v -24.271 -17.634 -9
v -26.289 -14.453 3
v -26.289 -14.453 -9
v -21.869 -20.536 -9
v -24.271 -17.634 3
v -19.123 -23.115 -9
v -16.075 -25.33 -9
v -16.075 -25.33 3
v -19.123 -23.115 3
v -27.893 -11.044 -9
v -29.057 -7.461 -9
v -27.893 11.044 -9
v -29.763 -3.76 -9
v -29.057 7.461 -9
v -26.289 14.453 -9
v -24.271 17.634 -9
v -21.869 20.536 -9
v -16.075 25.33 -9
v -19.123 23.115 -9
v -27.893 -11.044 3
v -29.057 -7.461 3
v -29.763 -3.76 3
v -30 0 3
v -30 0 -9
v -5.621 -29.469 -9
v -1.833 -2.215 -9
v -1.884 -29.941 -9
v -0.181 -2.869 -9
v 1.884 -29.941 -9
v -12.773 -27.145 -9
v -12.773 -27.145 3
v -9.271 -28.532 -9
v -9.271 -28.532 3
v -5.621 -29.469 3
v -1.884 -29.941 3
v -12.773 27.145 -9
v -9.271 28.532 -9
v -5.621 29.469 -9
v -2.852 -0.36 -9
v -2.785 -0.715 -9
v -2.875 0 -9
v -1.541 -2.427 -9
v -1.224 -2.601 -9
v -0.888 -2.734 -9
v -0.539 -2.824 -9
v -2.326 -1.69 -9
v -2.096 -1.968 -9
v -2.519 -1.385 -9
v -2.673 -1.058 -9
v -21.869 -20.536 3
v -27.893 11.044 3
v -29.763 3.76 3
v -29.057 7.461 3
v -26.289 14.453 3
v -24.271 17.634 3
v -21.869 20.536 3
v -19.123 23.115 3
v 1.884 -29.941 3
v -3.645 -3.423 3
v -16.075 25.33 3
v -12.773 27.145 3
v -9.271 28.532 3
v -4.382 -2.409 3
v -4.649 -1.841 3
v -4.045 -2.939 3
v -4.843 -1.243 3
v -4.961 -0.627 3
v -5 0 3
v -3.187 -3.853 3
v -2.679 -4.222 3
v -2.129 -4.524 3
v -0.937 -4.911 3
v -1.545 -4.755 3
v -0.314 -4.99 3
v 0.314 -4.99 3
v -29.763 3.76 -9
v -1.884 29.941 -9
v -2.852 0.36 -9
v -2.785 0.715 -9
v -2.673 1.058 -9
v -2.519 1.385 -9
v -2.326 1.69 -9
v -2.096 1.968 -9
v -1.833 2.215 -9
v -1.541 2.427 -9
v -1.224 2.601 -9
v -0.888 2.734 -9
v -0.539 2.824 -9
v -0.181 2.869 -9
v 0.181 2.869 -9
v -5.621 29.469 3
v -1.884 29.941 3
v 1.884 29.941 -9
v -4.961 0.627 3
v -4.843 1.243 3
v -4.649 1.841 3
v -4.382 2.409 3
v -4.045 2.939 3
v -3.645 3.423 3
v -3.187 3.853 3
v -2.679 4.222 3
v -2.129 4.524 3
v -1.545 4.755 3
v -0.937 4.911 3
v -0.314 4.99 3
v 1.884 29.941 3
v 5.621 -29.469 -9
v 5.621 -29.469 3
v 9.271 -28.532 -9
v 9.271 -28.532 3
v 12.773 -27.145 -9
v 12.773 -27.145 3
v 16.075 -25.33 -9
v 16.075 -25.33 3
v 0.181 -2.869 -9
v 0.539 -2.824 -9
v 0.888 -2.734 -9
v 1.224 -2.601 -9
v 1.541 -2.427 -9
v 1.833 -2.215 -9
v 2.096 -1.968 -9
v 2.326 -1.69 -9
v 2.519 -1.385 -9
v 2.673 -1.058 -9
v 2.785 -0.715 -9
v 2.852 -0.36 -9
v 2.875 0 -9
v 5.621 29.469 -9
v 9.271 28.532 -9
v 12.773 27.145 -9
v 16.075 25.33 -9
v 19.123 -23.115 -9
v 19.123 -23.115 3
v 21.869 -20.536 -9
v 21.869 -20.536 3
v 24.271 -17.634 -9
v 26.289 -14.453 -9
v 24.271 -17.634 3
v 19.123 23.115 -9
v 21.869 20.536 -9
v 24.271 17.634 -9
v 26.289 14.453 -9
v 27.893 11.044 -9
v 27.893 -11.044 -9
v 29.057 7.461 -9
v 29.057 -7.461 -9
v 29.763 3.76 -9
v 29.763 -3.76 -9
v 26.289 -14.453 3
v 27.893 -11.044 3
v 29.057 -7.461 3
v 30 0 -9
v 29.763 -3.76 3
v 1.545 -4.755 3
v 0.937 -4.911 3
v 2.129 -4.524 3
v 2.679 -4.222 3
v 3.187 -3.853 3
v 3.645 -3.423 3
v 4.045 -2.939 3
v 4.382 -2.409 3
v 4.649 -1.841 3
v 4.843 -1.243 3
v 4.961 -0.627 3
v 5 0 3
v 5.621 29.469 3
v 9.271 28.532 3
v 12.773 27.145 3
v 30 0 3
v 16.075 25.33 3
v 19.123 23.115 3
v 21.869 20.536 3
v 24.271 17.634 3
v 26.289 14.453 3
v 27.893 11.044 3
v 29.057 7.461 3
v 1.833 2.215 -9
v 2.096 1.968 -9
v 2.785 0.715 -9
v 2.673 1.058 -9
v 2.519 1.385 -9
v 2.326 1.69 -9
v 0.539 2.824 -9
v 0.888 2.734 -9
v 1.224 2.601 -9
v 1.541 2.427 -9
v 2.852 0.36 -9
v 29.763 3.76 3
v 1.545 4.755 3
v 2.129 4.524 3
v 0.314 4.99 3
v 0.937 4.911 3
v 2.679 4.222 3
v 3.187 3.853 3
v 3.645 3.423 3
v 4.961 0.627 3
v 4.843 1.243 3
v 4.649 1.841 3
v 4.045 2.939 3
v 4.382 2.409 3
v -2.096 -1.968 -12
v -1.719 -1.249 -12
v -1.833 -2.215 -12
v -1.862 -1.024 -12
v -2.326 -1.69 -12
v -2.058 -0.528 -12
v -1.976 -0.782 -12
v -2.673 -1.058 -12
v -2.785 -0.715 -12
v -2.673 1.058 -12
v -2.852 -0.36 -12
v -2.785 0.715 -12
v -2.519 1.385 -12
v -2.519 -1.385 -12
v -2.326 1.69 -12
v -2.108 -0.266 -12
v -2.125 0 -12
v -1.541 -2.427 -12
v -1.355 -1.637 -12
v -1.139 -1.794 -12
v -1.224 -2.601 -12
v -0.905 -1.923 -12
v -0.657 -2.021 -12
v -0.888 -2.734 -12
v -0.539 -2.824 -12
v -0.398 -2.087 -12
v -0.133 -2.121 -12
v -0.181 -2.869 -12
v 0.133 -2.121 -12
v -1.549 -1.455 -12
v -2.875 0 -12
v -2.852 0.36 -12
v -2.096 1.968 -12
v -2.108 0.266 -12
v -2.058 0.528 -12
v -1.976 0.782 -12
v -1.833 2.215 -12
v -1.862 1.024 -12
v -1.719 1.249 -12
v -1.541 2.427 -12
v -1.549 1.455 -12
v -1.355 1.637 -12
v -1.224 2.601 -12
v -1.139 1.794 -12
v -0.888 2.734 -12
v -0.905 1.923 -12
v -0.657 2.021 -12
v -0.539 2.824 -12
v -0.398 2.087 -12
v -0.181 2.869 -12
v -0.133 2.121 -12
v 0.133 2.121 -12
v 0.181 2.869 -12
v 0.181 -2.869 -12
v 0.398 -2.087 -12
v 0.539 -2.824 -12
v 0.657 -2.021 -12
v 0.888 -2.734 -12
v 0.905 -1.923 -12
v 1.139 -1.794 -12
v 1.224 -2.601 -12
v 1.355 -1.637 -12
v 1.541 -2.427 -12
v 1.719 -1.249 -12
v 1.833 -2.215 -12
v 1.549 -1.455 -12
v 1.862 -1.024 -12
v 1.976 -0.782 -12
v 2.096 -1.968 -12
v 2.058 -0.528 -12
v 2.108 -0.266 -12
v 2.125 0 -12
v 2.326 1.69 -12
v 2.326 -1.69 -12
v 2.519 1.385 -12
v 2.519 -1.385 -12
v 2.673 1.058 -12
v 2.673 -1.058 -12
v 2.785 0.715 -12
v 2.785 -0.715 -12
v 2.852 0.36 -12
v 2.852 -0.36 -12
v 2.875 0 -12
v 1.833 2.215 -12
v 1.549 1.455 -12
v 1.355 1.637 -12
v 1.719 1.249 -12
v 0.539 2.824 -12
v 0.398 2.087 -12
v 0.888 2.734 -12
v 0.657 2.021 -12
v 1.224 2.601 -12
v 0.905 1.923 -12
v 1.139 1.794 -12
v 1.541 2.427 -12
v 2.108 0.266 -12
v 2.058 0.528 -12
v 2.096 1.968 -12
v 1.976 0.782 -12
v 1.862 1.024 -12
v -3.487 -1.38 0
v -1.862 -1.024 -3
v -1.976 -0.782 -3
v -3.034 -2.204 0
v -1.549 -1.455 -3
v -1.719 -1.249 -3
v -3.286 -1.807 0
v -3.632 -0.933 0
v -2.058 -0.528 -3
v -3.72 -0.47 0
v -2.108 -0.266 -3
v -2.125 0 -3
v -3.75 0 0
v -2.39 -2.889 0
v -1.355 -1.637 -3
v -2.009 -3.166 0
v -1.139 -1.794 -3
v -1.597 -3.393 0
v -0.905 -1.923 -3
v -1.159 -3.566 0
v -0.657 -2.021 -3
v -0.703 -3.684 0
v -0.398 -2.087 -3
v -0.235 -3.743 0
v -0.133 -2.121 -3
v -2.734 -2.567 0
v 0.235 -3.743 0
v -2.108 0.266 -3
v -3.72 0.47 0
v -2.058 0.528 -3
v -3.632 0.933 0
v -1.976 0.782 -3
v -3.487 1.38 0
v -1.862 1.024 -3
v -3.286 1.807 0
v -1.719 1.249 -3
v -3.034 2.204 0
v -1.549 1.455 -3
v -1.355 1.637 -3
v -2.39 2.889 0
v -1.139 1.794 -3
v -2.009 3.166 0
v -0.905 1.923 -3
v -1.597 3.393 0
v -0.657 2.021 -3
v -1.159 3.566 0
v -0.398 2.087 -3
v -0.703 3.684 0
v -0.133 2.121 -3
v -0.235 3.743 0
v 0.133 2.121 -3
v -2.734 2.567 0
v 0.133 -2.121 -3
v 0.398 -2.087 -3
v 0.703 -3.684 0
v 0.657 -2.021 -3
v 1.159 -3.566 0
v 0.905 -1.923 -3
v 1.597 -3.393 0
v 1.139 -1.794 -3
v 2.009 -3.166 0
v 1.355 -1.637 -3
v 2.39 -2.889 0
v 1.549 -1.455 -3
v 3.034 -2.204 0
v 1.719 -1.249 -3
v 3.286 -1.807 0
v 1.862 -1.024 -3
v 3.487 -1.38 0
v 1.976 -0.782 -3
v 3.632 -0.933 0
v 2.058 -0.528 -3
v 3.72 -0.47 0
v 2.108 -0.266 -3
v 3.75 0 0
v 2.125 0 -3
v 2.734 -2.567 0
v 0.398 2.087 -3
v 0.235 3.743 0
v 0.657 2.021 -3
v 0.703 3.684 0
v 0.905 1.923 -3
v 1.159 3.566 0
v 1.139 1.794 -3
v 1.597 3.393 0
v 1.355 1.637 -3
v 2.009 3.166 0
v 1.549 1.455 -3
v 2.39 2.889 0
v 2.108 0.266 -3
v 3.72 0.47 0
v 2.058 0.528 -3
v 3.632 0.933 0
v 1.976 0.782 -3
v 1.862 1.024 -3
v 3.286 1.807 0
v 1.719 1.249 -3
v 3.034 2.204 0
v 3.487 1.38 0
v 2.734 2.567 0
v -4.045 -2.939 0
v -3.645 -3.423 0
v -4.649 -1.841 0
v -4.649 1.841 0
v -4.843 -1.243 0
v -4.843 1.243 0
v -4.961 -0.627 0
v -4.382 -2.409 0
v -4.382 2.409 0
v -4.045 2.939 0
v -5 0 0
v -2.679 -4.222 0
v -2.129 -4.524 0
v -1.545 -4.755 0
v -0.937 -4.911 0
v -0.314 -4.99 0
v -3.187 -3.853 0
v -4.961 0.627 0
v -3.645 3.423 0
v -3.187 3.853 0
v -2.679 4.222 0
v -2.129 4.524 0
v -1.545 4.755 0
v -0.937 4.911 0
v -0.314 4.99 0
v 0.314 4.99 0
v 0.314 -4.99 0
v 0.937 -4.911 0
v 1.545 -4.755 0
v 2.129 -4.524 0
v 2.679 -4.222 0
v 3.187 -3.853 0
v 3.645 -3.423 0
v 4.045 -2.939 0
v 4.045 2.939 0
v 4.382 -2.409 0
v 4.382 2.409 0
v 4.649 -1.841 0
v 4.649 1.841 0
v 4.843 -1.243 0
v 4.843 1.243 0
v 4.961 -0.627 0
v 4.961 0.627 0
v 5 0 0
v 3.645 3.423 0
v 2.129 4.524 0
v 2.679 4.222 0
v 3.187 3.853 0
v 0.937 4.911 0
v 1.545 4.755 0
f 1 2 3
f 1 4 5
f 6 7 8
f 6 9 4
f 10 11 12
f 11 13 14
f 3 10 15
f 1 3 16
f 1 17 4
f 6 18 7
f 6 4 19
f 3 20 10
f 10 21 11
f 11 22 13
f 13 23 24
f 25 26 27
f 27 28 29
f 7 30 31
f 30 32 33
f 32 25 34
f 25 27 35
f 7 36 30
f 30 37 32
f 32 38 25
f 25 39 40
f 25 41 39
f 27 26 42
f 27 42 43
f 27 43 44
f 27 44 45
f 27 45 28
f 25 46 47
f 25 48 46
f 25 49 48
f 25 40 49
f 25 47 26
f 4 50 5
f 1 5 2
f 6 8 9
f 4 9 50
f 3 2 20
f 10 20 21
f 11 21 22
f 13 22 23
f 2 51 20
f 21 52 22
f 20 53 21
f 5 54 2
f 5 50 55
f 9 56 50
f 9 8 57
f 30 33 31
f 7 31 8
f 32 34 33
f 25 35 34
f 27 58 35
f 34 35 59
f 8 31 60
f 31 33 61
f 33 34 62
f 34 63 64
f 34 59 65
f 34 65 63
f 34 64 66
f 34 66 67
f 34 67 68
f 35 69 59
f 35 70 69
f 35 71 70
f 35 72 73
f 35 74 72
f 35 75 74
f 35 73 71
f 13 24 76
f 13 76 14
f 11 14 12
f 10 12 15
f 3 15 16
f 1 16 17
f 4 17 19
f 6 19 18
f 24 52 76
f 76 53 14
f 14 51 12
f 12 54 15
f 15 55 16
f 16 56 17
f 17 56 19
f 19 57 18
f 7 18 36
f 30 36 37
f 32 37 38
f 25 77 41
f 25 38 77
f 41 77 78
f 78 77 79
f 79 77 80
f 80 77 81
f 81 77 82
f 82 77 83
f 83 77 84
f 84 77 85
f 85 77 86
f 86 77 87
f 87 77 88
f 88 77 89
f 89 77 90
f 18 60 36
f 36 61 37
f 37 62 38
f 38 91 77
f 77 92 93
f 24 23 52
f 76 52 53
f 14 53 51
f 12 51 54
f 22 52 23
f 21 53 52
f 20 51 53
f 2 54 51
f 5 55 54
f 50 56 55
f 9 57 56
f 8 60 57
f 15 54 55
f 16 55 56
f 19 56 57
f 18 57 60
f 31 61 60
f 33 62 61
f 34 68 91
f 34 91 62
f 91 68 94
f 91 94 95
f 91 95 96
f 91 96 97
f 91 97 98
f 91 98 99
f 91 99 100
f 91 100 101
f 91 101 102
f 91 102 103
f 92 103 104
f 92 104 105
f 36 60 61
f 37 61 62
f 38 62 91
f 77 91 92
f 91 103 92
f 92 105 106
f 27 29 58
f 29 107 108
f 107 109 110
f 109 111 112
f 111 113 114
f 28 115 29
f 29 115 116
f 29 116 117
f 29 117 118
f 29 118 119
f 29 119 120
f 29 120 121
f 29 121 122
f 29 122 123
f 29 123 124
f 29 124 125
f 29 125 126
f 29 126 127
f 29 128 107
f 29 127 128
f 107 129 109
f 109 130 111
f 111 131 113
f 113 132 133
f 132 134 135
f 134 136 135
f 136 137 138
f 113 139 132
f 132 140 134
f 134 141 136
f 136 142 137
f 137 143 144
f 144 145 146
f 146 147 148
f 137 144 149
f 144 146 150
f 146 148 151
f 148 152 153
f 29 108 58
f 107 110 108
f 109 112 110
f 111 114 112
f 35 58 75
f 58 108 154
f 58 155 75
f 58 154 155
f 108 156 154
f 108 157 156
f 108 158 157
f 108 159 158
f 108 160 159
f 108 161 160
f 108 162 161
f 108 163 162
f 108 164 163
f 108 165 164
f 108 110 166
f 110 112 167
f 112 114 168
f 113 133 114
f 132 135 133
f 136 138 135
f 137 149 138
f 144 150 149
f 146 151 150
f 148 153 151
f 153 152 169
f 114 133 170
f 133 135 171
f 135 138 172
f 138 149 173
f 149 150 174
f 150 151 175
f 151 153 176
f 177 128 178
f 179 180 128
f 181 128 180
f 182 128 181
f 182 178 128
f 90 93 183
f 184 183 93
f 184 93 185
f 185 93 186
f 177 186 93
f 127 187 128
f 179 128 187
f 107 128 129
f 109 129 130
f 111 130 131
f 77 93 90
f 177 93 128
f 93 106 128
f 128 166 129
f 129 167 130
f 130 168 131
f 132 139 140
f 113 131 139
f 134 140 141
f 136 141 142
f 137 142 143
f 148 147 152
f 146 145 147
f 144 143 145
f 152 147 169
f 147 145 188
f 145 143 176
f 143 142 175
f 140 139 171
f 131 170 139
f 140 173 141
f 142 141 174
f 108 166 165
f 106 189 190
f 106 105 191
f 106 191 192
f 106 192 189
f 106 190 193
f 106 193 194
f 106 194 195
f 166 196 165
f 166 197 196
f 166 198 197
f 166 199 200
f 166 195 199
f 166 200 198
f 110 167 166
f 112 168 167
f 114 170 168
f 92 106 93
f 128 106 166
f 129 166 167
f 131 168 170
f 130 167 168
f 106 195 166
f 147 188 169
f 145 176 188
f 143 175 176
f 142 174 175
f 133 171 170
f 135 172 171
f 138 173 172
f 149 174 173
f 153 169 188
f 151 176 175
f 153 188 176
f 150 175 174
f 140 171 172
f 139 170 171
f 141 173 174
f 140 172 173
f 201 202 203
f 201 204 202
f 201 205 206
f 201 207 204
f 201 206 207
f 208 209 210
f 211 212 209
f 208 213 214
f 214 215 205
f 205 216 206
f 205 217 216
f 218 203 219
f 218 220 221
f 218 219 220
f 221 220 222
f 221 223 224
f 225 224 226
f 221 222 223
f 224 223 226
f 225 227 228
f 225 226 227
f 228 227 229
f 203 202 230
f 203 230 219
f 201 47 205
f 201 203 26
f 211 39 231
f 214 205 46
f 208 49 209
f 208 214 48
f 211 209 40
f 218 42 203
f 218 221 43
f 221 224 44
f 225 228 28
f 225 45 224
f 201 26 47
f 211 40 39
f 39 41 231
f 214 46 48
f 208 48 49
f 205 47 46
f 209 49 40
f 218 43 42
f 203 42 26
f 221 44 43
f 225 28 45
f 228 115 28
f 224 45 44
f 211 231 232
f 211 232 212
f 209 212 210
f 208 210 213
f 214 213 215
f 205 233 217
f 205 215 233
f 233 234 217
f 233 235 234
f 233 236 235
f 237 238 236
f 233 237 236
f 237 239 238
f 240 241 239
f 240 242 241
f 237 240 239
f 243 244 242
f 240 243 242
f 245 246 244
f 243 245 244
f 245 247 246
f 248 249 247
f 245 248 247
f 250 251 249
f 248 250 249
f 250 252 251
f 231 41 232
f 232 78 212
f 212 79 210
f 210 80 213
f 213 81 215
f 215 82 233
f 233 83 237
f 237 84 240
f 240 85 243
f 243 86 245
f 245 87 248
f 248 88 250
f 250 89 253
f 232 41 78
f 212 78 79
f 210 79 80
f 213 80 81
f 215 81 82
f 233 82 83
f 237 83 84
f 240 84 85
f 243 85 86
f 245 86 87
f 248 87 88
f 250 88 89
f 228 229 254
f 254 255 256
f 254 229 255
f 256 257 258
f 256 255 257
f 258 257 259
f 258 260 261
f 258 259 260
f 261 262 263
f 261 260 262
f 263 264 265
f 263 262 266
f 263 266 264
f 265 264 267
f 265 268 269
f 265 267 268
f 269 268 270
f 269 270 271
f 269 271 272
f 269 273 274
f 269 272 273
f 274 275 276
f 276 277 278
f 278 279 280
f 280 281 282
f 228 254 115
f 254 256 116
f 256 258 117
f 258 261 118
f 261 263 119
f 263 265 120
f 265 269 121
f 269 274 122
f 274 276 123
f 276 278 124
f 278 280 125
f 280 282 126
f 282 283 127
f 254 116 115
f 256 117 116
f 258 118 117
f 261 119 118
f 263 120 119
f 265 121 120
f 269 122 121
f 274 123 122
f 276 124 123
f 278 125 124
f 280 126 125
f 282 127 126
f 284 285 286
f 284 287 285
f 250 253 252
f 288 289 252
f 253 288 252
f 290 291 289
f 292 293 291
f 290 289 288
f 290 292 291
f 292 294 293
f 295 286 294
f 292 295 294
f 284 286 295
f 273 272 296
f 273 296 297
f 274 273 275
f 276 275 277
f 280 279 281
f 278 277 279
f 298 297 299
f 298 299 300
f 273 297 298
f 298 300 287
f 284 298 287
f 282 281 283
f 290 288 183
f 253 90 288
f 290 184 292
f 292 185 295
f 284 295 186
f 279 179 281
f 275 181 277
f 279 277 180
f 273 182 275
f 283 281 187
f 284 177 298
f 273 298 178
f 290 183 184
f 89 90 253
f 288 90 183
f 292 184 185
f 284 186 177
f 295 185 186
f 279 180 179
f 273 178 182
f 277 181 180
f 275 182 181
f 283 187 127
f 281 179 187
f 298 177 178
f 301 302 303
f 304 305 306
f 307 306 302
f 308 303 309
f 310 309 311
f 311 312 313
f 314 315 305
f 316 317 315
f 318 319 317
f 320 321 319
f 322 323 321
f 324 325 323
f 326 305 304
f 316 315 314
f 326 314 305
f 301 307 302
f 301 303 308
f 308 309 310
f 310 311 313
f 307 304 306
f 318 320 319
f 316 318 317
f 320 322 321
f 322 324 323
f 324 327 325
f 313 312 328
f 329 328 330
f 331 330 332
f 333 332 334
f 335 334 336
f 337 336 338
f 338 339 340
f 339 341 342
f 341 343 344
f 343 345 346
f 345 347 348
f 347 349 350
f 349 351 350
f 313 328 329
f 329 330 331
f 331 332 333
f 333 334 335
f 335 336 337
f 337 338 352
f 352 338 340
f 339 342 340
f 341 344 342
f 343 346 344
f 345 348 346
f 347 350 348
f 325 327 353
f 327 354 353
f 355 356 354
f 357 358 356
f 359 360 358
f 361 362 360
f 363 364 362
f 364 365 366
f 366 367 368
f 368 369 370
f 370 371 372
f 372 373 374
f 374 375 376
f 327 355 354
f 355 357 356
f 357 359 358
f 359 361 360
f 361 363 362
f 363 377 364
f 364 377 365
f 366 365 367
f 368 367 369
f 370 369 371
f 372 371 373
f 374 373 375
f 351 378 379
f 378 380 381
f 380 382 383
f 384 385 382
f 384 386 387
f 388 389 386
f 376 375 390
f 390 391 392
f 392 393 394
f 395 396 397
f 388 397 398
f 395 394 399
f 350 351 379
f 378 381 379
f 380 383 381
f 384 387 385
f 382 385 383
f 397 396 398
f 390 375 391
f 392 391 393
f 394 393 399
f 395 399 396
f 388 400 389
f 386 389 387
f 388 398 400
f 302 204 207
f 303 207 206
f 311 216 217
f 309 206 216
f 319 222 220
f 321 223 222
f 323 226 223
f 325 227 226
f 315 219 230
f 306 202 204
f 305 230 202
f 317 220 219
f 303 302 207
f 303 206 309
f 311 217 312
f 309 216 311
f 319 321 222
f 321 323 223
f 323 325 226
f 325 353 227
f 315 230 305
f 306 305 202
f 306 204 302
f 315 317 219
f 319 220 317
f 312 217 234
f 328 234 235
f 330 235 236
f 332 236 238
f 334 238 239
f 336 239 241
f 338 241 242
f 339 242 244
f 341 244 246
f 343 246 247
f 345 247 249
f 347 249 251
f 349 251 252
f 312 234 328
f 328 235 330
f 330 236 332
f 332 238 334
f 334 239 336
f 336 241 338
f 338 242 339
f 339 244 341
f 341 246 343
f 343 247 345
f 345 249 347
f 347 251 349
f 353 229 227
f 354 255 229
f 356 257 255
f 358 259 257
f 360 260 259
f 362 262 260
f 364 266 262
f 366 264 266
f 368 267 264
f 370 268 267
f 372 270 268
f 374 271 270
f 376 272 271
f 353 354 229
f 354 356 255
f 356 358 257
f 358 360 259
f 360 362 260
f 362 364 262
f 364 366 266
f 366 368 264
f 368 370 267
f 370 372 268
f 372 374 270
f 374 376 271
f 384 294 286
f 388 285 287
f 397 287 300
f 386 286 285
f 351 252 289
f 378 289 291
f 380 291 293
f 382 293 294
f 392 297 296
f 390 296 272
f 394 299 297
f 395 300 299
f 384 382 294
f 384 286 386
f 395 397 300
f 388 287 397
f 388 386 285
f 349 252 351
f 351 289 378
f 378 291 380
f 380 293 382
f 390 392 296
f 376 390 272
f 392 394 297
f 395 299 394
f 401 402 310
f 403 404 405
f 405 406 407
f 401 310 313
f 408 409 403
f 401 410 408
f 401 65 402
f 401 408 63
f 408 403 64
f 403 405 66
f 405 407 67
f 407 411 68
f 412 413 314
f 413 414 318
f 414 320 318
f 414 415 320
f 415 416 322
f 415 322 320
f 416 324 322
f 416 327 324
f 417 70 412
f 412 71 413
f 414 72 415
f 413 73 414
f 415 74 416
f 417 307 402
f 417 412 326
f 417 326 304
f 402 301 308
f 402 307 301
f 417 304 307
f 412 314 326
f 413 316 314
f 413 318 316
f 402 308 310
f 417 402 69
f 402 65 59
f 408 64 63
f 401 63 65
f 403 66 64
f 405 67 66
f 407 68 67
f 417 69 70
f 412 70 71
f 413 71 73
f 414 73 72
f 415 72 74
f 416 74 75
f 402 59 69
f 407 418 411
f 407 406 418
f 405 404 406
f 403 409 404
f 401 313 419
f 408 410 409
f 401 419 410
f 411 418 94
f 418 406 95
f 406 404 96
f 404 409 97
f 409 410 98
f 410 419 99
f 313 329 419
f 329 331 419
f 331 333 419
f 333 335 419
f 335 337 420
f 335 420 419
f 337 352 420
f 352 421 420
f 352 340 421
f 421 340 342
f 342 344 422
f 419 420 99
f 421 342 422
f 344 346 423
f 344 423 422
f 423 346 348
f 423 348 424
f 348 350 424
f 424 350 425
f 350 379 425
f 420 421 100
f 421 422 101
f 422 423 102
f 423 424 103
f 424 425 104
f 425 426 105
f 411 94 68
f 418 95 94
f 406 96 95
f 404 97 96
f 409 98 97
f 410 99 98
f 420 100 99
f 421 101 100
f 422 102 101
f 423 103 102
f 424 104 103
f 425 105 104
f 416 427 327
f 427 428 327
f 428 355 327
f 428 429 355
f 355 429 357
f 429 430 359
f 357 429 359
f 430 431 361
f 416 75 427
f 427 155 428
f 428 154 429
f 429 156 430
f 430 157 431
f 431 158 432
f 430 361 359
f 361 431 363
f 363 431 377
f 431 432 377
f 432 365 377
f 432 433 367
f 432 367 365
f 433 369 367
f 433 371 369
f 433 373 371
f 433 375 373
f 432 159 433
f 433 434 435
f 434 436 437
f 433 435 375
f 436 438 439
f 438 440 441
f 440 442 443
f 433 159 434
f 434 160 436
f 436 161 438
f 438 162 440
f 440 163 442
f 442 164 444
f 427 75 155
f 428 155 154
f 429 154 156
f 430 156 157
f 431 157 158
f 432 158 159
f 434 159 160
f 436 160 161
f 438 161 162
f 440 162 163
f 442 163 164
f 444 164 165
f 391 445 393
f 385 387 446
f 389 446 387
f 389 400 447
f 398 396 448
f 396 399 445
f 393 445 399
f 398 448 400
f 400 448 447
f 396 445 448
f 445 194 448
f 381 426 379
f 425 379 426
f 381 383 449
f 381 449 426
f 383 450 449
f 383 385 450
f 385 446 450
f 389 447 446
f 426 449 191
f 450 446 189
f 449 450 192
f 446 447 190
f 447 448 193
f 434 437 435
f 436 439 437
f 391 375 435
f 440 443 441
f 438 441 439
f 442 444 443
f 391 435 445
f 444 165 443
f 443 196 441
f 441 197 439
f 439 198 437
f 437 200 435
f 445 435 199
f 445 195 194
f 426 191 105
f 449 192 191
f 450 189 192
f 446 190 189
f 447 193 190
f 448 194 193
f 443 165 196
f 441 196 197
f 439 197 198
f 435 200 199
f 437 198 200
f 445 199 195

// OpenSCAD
$fn = 50;

difference() {
	union() {
		translate(v = [0, 0, -9.0]) {
			cylinder(h = 12, r = 30.0);
		}
		#translate(v = [0, 0, -12.0]) {
			cylinder(h = 12, r = 2.875);
		}
	}
	union() {
		translate(v = [0, 0, 0]) {
			rotate(a = [0, 0, 0]) {
				difference() {
					union() {
						translate(v = [0, 0, -12.0]) {
							cylinder(h = 12, r = 2.0);
						}
						translate(v = [0, 0, -3]) {
							cylinder(h = 3, r1 = 2.125, r2 = 3.75);
						}
						translate(v = [0, 0, -12.0]) {
							cylinder(h = 12, r = 2.125);
						}
						translate(v = [0, 0, -12.0]) {
							cylinder(h = 12, r = 2.0);
						}
					}
					union();
				}
			}
		}
		#cylinder(h = 3, r = 5.0);
	}
}
